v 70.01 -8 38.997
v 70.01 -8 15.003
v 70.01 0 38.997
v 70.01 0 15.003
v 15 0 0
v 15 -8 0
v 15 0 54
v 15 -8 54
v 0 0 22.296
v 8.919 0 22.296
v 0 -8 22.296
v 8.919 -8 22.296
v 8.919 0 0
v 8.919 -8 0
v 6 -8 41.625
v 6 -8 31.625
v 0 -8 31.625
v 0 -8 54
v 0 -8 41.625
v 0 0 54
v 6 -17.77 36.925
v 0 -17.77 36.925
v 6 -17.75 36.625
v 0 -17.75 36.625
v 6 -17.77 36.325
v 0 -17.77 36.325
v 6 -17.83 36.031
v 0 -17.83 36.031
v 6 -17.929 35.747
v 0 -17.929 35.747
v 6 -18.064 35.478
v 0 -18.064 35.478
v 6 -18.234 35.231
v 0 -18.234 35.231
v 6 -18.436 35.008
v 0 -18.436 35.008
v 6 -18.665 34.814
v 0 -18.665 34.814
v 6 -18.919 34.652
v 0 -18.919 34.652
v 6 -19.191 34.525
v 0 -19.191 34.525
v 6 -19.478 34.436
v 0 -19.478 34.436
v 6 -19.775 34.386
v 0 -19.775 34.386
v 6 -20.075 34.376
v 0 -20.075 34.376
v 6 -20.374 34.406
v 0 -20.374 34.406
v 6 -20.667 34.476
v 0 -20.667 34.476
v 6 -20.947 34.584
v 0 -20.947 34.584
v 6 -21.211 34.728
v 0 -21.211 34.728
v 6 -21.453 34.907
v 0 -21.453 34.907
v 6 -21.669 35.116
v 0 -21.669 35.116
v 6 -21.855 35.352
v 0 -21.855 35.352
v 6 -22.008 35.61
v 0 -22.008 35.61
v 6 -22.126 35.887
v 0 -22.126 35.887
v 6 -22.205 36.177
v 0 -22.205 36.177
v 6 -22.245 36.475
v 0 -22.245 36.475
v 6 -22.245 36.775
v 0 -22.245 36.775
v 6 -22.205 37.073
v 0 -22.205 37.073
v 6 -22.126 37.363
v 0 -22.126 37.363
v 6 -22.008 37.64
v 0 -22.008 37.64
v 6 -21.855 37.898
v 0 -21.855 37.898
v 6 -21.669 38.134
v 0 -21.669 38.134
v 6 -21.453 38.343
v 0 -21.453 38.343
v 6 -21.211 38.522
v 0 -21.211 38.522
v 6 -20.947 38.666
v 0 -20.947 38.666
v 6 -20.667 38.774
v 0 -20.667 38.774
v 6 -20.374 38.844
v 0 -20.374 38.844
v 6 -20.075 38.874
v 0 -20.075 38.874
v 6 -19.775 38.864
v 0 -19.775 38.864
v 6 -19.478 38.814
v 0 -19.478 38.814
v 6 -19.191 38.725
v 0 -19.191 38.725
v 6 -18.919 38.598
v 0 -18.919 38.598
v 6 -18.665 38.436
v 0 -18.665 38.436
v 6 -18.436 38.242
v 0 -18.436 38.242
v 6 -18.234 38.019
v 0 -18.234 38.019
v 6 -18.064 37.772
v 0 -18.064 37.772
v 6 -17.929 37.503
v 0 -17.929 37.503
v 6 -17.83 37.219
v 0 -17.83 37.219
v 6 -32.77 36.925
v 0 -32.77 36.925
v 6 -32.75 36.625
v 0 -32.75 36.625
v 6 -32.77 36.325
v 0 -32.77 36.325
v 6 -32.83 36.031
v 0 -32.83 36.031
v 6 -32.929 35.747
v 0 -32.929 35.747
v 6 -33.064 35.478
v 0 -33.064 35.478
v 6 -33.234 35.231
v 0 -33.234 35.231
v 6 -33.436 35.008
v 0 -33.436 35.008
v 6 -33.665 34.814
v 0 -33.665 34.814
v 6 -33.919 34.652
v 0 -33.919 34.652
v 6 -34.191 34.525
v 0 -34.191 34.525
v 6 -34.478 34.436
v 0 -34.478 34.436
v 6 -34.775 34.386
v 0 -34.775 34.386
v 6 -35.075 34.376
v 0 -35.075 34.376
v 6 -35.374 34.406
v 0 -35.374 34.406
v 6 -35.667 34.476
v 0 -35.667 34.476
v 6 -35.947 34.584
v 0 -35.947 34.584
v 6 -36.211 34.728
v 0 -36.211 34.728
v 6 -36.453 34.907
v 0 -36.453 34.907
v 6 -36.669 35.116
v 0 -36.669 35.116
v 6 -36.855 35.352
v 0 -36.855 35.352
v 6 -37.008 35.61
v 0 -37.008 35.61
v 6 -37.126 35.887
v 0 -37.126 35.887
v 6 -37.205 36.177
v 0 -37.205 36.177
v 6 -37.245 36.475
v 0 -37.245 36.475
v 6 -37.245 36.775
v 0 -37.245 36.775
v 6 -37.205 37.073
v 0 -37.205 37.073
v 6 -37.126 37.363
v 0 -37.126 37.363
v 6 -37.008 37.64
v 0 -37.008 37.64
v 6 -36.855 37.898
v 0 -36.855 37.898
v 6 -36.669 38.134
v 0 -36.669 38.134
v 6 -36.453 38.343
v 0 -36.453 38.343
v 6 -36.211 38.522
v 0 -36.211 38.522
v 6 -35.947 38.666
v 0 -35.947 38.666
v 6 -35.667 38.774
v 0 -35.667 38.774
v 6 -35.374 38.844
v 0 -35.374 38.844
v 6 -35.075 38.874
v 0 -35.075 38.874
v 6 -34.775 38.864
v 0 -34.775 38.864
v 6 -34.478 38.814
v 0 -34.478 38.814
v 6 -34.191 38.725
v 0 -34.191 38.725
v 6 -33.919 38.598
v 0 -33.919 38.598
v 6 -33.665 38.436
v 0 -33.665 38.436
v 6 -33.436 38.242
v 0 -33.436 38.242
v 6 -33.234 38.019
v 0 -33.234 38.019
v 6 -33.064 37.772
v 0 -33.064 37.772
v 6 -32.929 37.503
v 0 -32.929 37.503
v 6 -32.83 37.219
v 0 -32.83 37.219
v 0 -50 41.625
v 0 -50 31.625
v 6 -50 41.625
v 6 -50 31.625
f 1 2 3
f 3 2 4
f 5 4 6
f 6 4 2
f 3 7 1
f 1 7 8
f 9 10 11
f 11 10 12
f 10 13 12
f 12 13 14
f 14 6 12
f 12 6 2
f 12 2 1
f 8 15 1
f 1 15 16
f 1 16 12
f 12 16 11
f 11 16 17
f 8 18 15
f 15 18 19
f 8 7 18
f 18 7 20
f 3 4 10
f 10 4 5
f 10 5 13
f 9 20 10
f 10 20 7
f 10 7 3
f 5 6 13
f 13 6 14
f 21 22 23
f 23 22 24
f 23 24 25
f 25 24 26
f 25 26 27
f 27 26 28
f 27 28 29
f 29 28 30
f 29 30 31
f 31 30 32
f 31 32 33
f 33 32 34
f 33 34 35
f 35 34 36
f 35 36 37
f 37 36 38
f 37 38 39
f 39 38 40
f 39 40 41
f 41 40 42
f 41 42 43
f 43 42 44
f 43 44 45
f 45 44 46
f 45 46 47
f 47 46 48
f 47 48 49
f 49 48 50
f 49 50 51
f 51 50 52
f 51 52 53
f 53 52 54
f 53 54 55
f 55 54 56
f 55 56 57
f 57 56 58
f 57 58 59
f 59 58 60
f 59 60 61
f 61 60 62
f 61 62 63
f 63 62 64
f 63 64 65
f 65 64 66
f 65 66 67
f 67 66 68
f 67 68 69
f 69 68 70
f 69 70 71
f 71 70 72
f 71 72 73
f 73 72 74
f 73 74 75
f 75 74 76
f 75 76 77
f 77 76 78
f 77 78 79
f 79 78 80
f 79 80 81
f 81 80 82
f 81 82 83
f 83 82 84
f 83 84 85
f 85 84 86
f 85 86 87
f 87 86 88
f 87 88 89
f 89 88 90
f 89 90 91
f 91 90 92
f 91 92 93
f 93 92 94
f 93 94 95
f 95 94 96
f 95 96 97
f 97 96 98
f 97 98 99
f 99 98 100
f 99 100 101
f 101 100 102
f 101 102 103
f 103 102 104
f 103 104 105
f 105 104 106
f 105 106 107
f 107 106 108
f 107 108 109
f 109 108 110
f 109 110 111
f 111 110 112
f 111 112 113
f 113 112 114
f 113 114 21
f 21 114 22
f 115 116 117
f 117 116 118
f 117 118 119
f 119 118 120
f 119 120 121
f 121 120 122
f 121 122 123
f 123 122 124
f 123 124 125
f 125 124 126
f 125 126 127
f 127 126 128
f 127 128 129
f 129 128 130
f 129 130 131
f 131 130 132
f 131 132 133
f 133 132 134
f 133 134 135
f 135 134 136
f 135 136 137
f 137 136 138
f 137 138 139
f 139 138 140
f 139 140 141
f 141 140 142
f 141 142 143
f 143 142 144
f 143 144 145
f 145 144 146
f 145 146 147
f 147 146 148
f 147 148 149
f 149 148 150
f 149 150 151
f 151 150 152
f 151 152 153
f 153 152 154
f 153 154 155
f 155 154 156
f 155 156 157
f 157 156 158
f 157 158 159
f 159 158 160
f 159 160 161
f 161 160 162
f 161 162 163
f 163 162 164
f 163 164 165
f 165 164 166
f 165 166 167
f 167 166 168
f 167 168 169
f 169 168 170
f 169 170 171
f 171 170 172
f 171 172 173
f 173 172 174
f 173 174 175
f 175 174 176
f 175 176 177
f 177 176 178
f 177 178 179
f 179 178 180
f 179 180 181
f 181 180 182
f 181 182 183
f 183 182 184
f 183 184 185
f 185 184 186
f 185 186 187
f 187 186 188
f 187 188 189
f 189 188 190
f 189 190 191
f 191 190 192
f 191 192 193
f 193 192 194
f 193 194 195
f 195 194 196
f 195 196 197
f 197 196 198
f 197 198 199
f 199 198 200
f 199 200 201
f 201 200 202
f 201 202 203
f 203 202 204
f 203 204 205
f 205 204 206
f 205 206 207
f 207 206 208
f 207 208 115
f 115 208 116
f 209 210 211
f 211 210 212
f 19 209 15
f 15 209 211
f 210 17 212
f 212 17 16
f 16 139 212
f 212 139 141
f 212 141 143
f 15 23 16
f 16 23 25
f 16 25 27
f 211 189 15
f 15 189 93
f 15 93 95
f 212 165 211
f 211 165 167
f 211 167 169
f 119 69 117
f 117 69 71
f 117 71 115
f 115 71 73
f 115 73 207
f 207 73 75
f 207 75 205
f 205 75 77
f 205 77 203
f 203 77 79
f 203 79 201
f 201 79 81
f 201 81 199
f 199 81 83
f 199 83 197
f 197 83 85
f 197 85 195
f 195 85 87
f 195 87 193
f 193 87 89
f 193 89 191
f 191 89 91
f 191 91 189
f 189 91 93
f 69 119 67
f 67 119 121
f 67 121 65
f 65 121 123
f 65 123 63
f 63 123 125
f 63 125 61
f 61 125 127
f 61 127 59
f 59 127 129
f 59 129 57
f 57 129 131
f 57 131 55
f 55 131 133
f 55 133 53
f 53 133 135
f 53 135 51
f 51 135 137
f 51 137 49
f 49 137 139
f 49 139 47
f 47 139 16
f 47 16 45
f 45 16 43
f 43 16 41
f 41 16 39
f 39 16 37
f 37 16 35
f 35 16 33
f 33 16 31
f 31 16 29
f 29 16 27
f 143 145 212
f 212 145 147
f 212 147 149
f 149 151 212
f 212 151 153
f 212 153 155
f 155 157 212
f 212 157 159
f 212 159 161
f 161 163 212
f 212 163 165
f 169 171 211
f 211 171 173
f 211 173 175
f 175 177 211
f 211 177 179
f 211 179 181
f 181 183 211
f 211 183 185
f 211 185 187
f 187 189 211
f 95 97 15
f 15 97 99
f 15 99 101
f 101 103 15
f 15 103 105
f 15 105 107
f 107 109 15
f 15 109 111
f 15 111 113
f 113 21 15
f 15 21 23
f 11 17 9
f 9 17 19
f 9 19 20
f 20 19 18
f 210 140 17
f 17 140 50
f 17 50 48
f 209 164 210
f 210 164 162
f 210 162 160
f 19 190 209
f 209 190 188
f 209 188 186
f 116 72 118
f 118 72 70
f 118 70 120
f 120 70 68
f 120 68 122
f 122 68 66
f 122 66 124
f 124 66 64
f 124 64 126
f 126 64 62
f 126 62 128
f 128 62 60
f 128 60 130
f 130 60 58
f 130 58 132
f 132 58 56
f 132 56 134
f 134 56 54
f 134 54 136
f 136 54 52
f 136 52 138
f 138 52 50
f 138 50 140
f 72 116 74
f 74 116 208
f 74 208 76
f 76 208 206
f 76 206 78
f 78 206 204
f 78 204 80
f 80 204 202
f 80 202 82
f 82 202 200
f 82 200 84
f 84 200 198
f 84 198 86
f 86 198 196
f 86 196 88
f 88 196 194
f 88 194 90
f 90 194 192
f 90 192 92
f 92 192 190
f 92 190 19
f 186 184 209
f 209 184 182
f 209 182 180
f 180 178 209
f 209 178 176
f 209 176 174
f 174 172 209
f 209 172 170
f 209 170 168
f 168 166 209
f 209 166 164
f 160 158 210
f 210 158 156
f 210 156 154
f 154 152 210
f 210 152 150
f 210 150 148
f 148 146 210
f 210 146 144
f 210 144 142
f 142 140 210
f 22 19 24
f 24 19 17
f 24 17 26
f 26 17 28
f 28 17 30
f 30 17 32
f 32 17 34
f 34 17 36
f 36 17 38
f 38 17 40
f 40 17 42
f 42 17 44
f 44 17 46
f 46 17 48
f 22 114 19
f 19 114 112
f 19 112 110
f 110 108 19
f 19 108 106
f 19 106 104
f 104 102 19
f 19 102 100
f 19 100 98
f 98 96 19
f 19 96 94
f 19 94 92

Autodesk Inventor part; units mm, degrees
ref_plane "YZ Plane" through (0, 0, 0) normal (1, 0, 0) x (0, 1, 0)
ref_plane "XZ Plane" through (0, 0, 0) normal (0, 1, 0) x (-1, 0, 0)
ref_plane "XY Plane" through (0, 0, 0) normal (0, 0, 1) x (1, 0, 0)
sketch "スケッチ2" plane through (0, 0, 0) normal (1, 0, 0) x (0, 1, 0)
  line L0 (-50, 41.625) -> (0, 41.625)
  line L1 (0, 41.625) -> (0, 31.625)
  line L2 (0, 31.625) -> (-50, 31.625)
  line L3 (-50, 31.625) -> (-50, 41.625)
  line L4 (0, 31.625) -> (-8, 31.625)
  line L5 (-8, 31.625) -> (-8, 0)
  line L6 (-8, 0) -> (0, 0)
  line L7 (0, 0) -> (0, 31.625)
  circle A0 centre (-20, 36.625) radius 2.25
  circle A1 centre (-35, 36.625) radius 2.25
  line L8 (-8, 31.625) -> (0, 31.625)
  line L9 (0, 31.625) -> (0, 54)
  line L10 (0, 54) -> (-8, 54)
  line L11 (-8, 54) -> (-8, 31.625)
  point P0 (-8, 31.625)
  point P1 (-8, 41.625)
  point P2 (0, 41.625)
  dimension "d7" = 50
  dimension "d8" = 10
  dimension "d10" = 8
  dimension "d11" = 4.5
  dimension "d12" = 4.5
  dimension "d13" = 15
  dimension "d14" = 20
  dimension "d15" = 5
  dimension "d16" = 5
  dimension "d27" = 54
  dimension "d28" = 12.375
extrude "押し出し2" add sketch "スケッチ2" along normal blind 6 contours L0 L11 L2 L3
extrude "押し出し5" add sketch "スケッチ2" along normal blind 70 contours L11 L10 L9 L0 | L0 L1 L2 L11 | L2 L7 L6 L5
sketch "スケッチ4" plane through (0, 0, 54) normal (0, 1, 0) x (1, 0, 0)
  line L0 (70, 54) -> (70, 0) projected
  line L1 (70, 15) -> (15, 0)
  line L2 (15, 0) -> (15, 54)
  line L3 (15, 54) -> (70, 39)
  line L4 (0, 54) -> (70, 54) projected
  line L5 (0, 0) -> (70, 0) projected
  line L6 (0, 54) -> (0, 0) projected
  line L7 (0, 22.375) -> (0, 54) projected
  line L8 (0, 54) -> (8.9192, 54)
  line L9 (8.9192, 54) -> (8.9192, 31.7036)
  line L10 (8.9192, 31.7036) -> (0, 31.7036)
  line L11 (0, 31.7036) -> (0, 54)
  dimension "d31" = 15
  dimension "d32" = 15
  dimension "d33" = 15
extrude "押し出し6" cut sketch "スケッチ4" against normal blind 8 contours L0 L3 L4 | L0 L5 L1 | L9 L10 L6 L4
sketch "スケッチ5" plane through (0, -8, 41.625) normal (0, -1, 0) x (1, 0, 0)
  line L0 (70, -2.625) -> (70, -26.625) projected
  line L1 (15, -41.625) -> (70, -26.625) projected
  line L2 (70, -2.625) -> (15, 12.375) projected
  line L3 (70, -26.625) -> (15, -41.625) projected
  line L4 (70.01, -26.6223) -> (70.01, -2.6277)
  line L5 (70.01, -26.6223) -> (70, -26.625)
  line L6 (70.01, -2.6277) -> (70, -2.625)
  point P0 (0, -41.625)
  dimension "d36" = 0.01
extrude "押し出し7" add sketch "スケッチ5" against normal blind 8
equation "\"d32\" = d31"
equation "\"d33\" = d31"
properties part number "right-nail" material "ABS プラスチック"
